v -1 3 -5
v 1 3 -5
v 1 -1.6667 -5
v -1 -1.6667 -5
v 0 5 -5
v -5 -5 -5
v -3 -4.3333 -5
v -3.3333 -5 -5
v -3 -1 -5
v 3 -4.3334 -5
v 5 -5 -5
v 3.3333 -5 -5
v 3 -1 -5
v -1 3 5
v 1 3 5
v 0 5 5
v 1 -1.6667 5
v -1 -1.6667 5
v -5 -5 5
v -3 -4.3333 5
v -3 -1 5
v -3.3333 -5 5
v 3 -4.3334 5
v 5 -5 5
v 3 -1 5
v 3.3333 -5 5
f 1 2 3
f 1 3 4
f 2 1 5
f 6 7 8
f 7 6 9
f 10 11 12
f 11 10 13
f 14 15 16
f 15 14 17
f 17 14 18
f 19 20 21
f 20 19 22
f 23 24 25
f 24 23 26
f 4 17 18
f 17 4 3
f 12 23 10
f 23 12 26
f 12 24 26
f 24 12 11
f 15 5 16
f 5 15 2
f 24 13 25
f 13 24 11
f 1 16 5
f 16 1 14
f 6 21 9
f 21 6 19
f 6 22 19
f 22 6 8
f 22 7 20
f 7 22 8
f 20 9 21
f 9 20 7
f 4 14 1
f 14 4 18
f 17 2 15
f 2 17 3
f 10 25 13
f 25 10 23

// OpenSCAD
// Generated by SolidPython 1.1.3 on 2025-02-20 04:03:40
$fn=50;


intersection() {
	translate(v = [-5.0000000000, -5.0000000000, -5.0000000000]) {
		linear_extrude(height = 10) {
			polygon(points = [[0, 0], [5.0000000000, 10], [10, 0], [8.3333333333, 0], [6.6666666667, 3.3333333333], [3.3333333333, 3.3333333333], [1.6666666667, 0]]);
		}
	}
	rotate(a = -90, v = [0, 0, 1]) {
		translate(v = [-5.0000000000, -5.0000000000, -5.0000000000]) {
			linear_extrude(height = 10) {
				polygon(points = [[0, 0], [10, 0], [10, 2.0000000000], [2.0000000000, 2.0000000000], [2.0000000000, 4.0000000000], [7.5000000000, 4.0000000000], [7.5000000000, 6.0000000000], [2.0000000000, 6.0000000000], [2.0000000000, 8.0000000000], [10, 8.0000000000], [10, 10], [0, 10]]);
			}
		}
	}
}
/***********************************************
*********      SolidPython code:      **********
************************************************
 
from solid import *
from solid.utils import *

import math
import matplotlib.pyplot as plt
import subprocess
import os

class Hole:
    def __init__(self, x, y, radius):
        """
        Hole defined by:
        :param x: x dimension for center point of the circle as a ratio of letter height
        :param y: y dimension for center point of the circle as a ratio of letter height
        :param radius: radius of circle as a ratio of letter height
        """
        self.x = x
        self.y = y
        self.radius = radius

class Letter3D:
    def __init__(self, name, outer_shape_points, height, holes=None):
        """
        3D Letter defined by:
        :param name: name of letter
        :param outer_shape_points: points defining the outer shape of the letter
        :param heigh: size of cube that letter fits inside
        :param holes: list of Holes
        """
        self.name = name
        self.outer_shape_points = outer_shape_points
        self.holes = holes if holes is None else []
        self.height = height


    def generate(self):
        shape = polygon(points=self.outer_shape_points)

        if self.holes:
            for hole in self.holes:
                circle_hole = circle(r=hole.radius*self.height)
                positioned_hole = translate([hole.x*self.height, hole.y*self.height])(circle_hole)
                shape = difference()(shape, positioned_hole)
        
        shape_3d = linear_extrude(height=self.height)(shape)
        shape_3d = translate([-self.height/2, -self.height/2, -self.height/2])(shape_3d)
        return shape_3d
    
    def render(self):
        scad_render_to_file(self.shape, f"output/{self.name}.scad", file_header='$fn=50;')
        subprocess.run(["C:\\Program Files\\OpenSCAD\\openscad.exe", "-o", f"output\\{self.name}.stl", f"output\\{self.name}.scad"])


class TwoLetter3D:
    def __init__(self, height, letterA, letterA_face, letterB=None, letterB_face=None):
        self.height = height
        self.letterA = letterA
        self.letterB = letterB
        self.letterA_face = letterA_face
        self.letterB_face = letterB_face

    def call_letter_generation(self, letter):
        letter = letter.upper()
        function_name = f"letter_{letter}"
        func = globals().get(function_name)
        if func is None:
            raise ValueError(f"No letter generation function defined for letter '{letter}'.")
        else:
            print(func)
        return func(self.height)
    
    def rotate_object(self, face, shape):
        face = face.lower()
        if face == "z":
            return shape
        if face == "x":
            return rotate(a=90, v=[0,1,0])(shape)
        if face == "y":
            return rotate(a=-90, v=[0,0,1])(shape)
        else:
            raise ValueError("Face must be one of 'x', 'y', or 'z'.")

    def render(self):
        if self.letterA:
            letterA3D = self.call_letter_generation(self.letterA)
            letterA3D = self.rotate_object(self.letterA_face, letterA3D)

        if self.letterB:
            letterB3D = self.call_letter_generation(self.letterB)
            letterB3D = self.rotate_object(self.letterB_face, letterB3D)
            combined = intersection()(letterA3D, letterB3D)
            file_name = self.letterA + self.letterB
            scad_render_to_file(combined, f"output/{file_name}.scad", file_header='$fn=50;')
            subprocess.run(["C:\\Program Files\\OpenSCAD\\openscad.exe", "-o", f"output\\{file_name}.stl", f"output\\{file_name}.scad"])
            return
        else:
            file_name = self.letterA
            scad_render_to_file(letterA3D, f"output/{file_name}.scad", file_header='$fn=50;')
            subprocess.run(["C:\\Program Files\\OpenSCAD\\openscad.exe", "-o", f"output\\{file_name}.stl", f"output\\{file_name}.scad"])
    
                

def arc_points(radius, start_angle, end_angle, center=[0,0], num_points=50):
    angles = [start_angle + i * (end_angle - start_angle) / (num_points - 1)
              for i in range(num_points)]
    points = [
        (center[0] + radius * math.cos(math.radians(angle)),
         center[1] + radius * math.sin(math.radians(angle)))
        for angle in angles
    ]
    return points

def letter_A(h):
    shape_points = [(0,0), (h/2, h), (h, 0), (5/6*h, 0), (2/3*h, 1/3*h), (1/3*h, 1/3*h), (h/6, 0)]
    holes = [Hole(1/2, 7/12, 1/6)]
    A = Letter3D("A", shape_points, h, holes)
    return A.generate()

def letter_B(h):
    top_arc_points = arc_points(h/4, 90, -90, center=[3/4*h, 3/4*h])
    bottom_arc_points = arc_points(h/4, 90, -90, center=[3/4*h, h/4])
    other_points = [(0,0),(0,h)]

    shape_points = top_arc_points + bottom_arc_points + other_points
    holes = [Hole(1/2, 3/4, 1/6), Hole(1/2, 1/4, 1/6)]
    B = Letter3D("B", shape_points, h, holes)
    return B.generate()

def letter_C(h):
    outer_arc_points = arc_points(h/2, 30, 330, center=[h/2,h/2])
    inner_arc_points = arc_points(h/4, 30, 330, center=[h/2,h/2])[::-1]
    shape_points = outer_arc_points + inner_arc_points
    # print(shape_points)
    C = Letter3D("C", shape_points, h)
    return C.generate()


def letter_D(h):
    outer_arc_points = arc_points(h/2, 90, -90, center= [h/2, h/2])
    shape_points = outer_arc_points + [(0,0), (0, h)]
    holes = [Hole(1/2, 1/2, 1/6)]
    D = Letter3D("D", shape_points, h, holes)
    return D.generate()

def letter_E(h):
    points = [(0,0), (h,0), (h,h/5), (h/5,h/5), (h/5,2/5*h), (3/4*h,2/5*h), (3/4*h,3/5*h), (h/5,3/5*h), (h/5,4/5*h), (h,4/5*h), (h,h), (0,h)]
    E = Letter3D("E", points, h)
    return E.generate()

def letter_F(h):
    points = [(0,0), (h/5,0), (h/5,2/5*h), (3/4*h,2/5*h), (3/4*h,3/5*h), (h/5,3/5*h), (h/5,4/5*h), (h,4/5*h), (h,h), (0,h)]
    F = Letter3D("F", points, h)
    return F.generate()

if __name__ == "__main__":
    os.makedirs("output", exist_ok=True)

    letters = [chr(x) for x in range(ord('A'), ord('F') + 1)]
    for letter in letters:
        for other_letter in letters:
            shape = TwoLetter3D(10, letter, "z", other_letter, "y")
            shape.render()
 
 
************************************************/
